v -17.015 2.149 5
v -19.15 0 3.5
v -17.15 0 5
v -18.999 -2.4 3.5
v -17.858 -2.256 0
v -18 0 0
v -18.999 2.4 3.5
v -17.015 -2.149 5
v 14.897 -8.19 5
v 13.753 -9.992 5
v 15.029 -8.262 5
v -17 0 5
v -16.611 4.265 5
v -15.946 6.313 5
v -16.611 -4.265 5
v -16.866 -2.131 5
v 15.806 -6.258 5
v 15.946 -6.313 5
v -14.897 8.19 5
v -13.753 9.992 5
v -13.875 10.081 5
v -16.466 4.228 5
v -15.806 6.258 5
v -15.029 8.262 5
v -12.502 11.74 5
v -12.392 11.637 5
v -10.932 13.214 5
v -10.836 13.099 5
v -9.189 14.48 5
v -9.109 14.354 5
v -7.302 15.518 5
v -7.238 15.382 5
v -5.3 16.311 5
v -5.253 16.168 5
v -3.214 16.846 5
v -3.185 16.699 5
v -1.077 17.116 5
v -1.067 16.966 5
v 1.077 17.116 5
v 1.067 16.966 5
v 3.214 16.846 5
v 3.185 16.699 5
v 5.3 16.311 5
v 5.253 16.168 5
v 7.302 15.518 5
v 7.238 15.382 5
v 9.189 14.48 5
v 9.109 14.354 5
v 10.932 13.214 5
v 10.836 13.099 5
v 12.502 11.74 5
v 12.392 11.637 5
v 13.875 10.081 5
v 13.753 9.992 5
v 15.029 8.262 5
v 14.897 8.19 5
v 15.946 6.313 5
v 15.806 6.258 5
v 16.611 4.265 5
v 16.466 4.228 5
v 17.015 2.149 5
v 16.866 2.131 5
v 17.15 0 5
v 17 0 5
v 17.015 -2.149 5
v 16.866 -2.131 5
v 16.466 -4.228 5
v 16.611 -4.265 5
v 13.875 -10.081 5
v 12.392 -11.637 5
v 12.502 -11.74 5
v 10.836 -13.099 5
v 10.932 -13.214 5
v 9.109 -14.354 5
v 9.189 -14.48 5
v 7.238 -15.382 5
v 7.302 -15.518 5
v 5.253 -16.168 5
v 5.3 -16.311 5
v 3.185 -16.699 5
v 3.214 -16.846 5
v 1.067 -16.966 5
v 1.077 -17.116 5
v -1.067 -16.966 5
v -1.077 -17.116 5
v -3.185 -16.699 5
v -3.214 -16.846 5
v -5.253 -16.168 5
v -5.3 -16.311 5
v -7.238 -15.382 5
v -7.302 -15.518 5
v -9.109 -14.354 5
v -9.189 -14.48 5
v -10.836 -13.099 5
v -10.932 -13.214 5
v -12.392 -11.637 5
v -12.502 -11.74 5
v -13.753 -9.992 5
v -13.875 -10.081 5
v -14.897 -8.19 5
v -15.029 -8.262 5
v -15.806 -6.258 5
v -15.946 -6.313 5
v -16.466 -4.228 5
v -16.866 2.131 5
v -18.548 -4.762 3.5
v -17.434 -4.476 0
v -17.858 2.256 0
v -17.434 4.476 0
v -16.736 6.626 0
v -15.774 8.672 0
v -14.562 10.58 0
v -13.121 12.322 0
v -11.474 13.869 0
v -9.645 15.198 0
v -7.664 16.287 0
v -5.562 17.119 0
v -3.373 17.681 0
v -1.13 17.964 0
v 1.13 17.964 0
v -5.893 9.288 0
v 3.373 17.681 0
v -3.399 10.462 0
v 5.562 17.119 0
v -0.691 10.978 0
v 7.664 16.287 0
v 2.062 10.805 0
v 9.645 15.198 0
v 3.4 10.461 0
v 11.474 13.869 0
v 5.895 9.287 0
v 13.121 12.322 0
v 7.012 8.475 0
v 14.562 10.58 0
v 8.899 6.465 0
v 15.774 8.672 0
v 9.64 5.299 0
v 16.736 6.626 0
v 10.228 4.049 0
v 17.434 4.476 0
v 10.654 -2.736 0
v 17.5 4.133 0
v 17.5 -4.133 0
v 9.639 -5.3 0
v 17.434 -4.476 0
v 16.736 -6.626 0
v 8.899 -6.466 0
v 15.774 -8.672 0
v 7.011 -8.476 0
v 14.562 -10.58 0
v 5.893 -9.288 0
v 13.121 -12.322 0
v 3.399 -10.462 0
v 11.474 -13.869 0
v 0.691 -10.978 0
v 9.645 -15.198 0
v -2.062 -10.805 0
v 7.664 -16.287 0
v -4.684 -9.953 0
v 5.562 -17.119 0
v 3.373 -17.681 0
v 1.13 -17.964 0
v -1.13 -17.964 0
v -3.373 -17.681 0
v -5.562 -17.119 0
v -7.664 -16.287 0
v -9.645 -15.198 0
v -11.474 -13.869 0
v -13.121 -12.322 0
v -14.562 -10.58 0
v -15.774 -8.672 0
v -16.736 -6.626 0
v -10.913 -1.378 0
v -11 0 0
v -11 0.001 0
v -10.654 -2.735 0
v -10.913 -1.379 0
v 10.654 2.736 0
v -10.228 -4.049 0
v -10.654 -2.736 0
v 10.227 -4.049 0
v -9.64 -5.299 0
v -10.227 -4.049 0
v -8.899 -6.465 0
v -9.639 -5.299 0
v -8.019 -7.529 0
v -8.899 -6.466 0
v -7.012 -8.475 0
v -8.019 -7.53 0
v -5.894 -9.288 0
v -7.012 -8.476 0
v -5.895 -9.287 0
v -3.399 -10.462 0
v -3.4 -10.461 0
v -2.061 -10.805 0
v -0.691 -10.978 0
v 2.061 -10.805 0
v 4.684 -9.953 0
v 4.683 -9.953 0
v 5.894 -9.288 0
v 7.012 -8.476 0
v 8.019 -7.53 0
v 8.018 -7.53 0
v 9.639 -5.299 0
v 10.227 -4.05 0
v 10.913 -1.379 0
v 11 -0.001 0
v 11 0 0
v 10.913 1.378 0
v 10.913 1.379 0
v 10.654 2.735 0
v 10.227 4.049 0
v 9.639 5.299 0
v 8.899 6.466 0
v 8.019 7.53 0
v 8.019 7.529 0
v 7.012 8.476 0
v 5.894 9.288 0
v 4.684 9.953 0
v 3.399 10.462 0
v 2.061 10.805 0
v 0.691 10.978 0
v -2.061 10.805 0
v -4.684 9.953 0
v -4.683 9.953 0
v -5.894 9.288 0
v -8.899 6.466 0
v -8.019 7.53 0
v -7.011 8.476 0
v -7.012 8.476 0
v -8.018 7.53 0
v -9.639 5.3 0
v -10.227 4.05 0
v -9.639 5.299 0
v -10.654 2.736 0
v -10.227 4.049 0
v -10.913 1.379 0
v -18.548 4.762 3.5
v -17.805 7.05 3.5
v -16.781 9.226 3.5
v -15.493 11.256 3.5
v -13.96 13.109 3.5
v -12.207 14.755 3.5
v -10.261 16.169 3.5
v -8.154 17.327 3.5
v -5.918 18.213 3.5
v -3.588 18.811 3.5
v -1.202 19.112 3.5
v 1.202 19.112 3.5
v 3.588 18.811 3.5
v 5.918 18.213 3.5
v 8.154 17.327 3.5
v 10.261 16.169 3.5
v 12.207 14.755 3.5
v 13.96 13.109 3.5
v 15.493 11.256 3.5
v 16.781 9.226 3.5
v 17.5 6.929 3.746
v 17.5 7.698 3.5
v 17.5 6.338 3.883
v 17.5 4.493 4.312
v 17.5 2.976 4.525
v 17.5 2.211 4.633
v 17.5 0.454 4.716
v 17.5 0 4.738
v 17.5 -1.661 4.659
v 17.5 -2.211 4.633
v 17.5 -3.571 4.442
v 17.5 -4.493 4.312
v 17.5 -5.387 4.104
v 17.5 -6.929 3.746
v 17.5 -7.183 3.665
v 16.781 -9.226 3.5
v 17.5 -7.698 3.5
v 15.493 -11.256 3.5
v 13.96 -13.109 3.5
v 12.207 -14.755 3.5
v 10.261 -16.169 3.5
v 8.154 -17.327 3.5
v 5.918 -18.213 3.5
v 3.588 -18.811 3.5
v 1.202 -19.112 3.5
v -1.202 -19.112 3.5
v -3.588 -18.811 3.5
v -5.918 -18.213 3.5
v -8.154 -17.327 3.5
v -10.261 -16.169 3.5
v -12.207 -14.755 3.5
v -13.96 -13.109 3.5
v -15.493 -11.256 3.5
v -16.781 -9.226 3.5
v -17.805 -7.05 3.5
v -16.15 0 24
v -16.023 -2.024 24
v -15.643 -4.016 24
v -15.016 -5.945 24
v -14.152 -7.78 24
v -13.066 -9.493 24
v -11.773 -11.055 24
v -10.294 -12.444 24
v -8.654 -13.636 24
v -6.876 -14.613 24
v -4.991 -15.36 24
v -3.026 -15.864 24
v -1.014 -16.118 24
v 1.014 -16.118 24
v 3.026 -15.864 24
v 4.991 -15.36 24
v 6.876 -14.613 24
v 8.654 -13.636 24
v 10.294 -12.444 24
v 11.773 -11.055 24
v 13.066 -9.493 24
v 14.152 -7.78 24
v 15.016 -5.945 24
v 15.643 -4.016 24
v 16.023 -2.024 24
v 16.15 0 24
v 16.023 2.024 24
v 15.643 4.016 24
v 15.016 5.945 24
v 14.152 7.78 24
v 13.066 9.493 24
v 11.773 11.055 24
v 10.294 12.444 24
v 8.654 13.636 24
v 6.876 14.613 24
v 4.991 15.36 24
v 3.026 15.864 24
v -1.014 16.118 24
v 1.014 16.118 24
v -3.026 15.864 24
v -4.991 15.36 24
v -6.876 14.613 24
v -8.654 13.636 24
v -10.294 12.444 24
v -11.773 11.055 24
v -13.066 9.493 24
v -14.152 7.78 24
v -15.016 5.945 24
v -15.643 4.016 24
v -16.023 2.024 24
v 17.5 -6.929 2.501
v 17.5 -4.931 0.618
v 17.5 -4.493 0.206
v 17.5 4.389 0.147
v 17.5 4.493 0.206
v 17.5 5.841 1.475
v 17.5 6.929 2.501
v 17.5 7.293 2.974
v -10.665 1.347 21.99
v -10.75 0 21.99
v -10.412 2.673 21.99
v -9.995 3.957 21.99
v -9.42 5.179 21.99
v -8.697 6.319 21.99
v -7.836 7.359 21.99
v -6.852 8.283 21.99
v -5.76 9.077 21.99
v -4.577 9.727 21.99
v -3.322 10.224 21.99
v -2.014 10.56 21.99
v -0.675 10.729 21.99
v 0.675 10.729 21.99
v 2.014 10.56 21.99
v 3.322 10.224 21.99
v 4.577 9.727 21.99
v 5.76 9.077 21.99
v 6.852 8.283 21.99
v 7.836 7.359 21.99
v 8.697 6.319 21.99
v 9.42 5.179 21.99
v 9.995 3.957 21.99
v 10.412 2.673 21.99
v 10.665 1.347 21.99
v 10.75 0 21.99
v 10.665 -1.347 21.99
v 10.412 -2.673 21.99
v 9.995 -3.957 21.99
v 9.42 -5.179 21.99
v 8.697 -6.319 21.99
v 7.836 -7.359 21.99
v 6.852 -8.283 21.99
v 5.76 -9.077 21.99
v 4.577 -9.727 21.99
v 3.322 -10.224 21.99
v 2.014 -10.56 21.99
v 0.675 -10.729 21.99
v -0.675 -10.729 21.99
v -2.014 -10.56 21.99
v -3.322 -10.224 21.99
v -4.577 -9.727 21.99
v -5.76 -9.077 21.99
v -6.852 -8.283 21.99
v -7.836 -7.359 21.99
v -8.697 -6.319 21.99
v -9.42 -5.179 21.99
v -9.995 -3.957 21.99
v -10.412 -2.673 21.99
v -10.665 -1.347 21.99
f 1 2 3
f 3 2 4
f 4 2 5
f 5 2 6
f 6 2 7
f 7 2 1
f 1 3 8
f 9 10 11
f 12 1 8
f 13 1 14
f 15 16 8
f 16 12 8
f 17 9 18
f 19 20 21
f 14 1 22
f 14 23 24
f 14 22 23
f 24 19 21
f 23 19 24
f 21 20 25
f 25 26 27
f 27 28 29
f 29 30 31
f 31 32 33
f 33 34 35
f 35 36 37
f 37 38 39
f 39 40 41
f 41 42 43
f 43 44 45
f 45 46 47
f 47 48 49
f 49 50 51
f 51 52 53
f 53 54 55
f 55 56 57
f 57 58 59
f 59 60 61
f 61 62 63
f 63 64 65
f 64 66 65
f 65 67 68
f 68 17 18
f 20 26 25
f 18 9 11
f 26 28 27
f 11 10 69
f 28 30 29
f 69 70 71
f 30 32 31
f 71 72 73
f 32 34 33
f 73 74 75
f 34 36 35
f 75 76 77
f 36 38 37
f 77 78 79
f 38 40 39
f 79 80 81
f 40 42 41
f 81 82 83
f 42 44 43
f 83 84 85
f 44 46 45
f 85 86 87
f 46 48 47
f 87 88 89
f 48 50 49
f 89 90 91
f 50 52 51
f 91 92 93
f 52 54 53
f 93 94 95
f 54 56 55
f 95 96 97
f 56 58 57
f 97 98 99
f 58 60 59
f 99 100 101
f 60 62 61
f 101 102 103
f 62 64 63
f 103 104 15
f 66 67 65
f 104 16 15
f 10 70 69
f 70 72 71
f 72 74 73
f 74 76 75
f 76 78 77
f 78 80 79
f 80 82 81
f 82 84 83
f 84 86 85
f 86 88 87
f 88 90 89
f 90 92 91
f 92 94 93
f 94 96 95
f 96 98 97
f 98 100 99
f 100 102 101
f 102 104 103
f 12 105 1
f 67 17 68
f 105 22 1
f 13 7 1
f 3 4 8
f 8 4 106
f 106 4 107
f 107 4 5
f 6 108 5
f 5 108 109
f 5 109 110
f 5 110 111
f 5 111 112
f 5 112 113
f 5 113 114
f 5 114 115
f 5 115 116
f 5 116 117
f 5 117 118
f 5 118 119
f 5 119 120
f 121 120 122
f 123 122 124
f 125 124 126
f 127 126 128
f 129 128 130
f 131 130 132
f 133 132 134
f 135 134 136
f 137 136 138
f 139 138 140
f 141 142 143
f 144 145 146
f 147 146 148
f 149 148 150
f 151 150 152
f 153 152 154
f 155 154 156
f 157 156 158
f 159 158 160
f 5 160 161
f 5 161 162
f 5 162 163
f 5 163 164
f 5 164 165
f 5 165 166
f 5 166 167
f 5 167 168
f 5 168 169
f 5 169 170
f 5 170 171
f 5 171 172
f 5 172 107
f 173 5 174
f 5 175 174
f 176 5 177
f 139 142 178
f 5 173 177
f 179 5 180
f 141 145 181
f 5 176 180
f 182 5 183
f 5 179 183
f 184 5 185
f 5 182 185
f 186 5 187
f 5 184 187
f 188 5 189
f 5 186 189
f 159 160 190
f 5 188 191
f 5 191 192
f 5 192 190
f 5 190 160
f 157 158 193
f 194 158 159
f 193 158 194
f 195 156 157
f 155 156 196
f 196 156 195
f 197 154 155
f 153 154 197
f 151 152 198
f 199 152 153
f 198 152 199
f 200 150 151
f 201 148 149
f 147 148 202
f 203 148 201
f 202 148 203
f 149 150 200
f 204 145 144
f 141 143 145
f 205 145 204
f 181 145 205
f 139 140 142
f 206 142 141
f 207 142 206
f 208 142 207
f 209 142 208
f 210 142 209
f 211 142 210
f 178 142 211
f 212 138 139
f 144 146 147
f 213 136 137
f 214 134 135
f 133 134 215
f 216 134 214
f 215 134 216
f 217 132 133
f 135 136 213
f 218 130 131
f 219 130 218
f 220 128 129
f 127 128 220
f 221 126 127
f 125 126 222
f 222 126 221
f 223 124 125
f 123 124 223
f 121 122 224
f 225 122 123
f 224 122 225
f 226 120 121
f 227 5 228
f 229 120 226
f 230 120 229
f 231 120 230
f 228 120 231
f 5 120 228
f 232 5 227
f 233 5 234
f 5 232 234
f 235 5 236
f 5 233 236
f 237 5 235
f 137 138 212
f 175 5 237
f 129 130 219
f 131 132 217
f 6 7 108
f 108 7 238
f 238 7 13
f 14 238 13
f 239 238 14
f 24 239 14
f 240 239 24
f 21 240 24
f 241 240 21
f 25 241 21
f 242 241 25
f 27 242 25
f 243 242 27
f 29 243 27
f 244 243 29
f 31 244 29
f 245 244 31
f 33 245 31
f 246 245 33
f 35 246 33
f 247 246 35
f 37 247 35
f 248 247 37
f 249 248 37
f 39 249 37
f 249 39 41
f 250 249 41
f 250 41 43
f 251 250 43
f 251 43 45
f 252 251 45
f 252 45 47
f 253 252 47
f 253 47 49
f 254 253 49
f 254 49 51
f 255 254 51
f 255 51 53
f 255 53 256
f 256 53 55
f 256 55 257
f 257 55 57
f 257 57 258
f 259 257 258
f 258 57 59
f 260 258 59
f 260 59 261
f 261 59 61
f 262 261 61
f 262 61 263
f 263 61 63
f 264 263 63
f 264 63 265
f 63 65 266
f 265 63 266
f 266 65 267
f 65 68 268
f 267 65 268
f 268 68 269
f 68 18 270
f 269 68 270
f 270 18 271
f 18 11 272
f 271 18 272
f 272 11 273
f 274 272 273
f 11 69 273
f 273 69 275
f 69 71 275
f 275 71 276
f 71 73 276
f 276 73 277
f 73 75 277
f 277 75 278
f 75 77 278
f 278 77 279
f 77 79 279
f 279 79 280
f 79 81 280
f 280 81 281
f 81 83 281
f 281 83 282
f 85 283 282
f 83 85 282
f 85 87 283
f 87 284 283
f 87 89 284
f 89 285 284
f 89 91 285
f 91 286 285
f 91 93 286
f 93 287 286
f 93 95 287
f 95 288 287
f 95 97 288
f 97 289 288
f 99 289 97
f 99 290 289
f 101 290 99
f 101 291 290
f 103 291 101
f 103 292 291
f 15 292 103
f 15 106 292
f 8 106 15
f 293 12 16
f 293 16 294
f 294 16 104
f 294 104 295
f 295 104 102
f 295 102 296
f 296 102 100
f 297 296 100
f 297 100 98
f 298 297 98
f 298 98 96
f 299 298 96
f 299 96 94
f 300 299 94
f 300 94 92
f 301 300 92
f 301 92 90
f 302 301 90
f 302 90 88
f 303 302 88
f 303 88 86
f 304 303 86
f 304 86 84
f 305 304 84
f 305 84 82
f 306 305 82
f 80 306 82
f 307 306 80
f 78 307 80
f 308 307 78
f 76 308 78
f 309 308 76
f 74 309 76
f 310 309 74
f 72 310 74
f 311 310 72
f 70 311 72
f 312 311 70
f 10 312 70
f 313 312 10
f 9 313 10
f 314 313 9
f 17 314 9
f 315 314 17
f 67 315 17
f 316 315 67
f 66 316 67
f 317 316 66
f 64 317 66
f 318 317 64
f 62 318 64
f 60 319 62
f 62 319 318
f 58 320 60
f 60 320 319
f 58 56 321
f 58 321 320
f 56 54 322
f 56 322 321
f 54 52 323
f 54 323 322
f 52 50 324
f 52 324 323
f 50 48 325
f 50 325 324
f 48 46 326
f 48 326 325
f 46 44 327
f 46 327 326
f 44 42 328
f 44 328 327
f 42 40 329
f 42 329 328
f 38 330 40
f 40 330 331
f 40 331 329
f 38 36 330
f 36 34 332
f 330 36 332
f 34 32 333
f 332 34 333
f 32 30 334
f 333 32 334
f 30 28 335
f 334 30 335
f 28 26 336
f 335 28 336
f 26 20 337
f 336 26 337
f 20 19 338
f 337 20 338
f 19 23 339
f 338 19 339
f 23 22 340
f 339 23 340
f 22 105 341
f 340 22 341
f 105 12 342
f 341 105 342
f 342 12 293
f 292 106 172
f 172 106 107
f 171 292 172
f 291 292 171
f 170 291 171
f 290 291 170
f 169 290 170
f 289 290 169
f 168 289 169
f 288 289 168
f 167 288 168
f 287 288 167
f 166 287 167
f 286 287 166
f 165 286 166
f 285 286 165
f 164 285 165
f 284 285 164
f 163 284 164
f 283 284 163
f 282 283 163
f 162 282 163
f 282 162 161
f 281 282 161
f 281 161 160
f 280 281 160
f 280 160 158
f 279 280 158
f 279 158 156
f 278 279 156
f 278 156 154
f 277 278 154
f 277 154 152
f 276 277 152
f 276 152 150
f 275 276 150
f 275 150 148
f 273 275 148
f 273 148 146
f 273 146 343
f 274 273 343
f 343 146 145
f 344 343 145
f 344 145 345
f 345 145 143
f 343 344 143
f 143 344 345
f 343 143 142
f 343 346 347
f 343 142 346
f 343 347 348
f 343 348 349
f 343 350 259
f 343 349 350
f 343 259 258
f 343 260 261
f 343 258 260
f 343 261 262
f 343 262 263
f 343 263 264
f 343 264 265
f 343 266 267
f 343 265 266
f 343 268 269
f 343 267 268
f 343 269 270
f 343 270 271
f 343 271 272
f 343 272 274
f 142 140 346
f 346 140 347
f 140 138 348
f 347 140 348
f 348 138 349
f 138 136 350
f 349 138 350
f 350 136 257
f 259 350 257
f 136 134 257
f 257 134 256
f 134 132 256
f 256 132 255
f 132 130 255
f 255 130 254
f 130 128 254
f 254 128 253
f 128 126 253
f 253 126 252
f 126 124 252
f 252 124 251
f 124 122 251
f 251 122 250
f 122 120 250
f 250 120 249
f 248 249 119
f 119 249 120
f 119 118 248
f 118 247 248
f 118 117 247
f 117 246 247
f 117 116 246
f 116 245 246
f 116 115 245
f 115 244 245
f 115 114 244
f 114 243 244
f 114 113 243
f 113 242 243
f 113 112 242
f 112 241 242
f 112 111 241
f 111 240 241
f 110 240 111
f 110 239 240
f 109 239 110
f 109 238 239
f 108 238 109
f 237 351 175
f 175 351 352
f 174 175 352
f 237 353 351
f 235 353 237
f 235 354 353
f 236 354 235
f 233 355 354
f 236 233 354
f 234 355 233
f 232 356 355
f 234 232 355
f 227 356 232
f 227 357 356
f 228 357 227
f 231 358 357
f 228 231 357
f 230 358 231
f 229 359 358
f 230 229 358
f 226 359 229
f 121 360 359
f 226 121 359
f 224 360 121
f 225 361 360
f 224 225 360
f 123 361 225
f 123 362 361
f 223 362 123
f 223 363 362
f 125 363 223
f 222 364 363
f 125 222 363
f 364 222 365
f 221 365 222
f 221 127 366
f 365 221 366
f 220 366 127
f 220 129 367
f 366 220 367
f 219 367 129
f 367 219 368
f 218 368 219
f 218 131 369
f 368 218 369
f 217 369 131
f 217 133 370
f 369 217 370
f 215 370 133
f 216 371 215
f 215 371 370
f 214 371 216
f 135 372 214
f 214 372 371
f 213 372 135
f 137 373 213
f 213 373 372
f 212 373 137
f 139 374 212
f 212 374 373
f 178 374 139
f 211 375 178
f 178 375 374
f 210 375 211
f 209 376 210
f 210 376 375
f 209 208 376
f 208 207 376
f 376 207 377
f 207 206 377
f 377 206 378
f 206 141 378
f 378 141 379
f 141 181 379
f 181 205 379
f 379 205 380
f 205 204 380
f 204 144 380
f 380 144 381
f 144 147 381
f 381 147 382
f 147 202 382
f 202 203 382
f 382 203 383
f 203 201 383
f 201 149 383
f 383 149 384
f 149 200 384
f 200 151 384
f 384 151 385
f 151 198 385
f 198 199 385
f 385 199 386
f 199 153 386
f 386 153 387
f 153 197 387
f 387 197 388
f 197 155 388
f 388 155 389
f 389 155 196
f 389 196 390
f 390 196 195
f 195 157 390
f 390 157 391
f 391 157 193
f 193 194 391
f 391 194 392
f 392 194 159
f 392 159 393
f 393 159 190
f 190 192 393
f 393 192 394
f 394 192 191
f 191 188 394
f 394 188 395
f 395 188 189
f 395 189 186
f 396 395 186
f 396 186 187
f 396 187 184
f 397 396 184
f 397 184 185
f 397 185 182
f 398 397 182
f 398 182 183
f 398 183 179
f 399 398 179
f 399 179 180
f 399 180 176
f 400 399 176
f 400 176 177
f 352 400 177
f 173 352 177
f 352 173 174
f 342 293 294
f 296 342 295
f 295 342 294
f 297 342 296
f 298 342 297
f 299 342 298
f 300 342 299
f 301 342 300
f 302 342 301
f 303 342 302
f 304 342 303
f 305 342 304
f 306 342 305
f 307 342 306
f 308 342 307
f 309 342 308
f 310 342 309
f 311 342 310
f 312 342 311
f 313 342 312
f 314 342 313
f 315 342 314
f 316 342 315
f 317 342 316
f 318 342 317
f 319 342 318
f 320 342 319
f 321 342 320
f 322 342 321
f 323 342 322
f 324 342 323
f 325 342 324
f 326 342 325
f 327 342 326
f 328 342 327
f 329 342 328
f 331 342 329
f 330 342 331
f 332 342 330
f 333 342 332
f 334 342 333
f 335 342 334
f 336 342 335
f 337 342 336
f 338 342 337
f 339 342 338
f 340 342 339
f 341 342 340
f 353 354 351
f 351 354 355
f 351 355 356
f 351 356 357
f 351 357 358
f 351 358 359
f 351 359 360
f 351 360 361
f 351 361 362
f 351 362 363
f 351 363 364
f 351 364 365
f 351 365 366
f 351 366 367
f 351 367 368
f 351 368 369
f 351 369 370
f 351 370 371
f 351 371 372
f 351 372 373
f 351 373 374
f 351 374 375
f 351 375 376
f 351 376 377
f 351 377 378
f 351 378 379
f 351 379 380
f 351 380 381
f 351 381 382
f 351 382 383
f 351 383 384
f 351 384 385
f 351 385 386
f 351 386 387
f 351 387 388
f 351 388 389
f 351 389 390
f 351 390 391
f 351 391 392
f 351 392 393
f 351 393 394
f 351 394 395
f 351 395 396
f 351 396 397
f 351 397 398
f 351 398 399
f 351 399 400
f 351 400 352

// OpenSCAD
difference ()
{
	union ()
	{
	translate([0,0,0]) cylinder(3.5,36/2,38.3/2,$fn=50);	
	translate([0,0,3.5]) cylinder(1.5,38.3/2,34.3/2,$fn=50);	
	translate([0,0,5]) cylinder(19,34/2,32.3/2,$fn=50);



	}
//	translate([0,0,21])  rotate_extrude(convexity = 10) translate([12,0,0]) circle(r = 1.5);
	translate([0,0,-.01]) cylinder(22,22/2,21.5/2,$fn=50);	
	translate([17.5,-15,0]) cube([5,30,10]);

}
